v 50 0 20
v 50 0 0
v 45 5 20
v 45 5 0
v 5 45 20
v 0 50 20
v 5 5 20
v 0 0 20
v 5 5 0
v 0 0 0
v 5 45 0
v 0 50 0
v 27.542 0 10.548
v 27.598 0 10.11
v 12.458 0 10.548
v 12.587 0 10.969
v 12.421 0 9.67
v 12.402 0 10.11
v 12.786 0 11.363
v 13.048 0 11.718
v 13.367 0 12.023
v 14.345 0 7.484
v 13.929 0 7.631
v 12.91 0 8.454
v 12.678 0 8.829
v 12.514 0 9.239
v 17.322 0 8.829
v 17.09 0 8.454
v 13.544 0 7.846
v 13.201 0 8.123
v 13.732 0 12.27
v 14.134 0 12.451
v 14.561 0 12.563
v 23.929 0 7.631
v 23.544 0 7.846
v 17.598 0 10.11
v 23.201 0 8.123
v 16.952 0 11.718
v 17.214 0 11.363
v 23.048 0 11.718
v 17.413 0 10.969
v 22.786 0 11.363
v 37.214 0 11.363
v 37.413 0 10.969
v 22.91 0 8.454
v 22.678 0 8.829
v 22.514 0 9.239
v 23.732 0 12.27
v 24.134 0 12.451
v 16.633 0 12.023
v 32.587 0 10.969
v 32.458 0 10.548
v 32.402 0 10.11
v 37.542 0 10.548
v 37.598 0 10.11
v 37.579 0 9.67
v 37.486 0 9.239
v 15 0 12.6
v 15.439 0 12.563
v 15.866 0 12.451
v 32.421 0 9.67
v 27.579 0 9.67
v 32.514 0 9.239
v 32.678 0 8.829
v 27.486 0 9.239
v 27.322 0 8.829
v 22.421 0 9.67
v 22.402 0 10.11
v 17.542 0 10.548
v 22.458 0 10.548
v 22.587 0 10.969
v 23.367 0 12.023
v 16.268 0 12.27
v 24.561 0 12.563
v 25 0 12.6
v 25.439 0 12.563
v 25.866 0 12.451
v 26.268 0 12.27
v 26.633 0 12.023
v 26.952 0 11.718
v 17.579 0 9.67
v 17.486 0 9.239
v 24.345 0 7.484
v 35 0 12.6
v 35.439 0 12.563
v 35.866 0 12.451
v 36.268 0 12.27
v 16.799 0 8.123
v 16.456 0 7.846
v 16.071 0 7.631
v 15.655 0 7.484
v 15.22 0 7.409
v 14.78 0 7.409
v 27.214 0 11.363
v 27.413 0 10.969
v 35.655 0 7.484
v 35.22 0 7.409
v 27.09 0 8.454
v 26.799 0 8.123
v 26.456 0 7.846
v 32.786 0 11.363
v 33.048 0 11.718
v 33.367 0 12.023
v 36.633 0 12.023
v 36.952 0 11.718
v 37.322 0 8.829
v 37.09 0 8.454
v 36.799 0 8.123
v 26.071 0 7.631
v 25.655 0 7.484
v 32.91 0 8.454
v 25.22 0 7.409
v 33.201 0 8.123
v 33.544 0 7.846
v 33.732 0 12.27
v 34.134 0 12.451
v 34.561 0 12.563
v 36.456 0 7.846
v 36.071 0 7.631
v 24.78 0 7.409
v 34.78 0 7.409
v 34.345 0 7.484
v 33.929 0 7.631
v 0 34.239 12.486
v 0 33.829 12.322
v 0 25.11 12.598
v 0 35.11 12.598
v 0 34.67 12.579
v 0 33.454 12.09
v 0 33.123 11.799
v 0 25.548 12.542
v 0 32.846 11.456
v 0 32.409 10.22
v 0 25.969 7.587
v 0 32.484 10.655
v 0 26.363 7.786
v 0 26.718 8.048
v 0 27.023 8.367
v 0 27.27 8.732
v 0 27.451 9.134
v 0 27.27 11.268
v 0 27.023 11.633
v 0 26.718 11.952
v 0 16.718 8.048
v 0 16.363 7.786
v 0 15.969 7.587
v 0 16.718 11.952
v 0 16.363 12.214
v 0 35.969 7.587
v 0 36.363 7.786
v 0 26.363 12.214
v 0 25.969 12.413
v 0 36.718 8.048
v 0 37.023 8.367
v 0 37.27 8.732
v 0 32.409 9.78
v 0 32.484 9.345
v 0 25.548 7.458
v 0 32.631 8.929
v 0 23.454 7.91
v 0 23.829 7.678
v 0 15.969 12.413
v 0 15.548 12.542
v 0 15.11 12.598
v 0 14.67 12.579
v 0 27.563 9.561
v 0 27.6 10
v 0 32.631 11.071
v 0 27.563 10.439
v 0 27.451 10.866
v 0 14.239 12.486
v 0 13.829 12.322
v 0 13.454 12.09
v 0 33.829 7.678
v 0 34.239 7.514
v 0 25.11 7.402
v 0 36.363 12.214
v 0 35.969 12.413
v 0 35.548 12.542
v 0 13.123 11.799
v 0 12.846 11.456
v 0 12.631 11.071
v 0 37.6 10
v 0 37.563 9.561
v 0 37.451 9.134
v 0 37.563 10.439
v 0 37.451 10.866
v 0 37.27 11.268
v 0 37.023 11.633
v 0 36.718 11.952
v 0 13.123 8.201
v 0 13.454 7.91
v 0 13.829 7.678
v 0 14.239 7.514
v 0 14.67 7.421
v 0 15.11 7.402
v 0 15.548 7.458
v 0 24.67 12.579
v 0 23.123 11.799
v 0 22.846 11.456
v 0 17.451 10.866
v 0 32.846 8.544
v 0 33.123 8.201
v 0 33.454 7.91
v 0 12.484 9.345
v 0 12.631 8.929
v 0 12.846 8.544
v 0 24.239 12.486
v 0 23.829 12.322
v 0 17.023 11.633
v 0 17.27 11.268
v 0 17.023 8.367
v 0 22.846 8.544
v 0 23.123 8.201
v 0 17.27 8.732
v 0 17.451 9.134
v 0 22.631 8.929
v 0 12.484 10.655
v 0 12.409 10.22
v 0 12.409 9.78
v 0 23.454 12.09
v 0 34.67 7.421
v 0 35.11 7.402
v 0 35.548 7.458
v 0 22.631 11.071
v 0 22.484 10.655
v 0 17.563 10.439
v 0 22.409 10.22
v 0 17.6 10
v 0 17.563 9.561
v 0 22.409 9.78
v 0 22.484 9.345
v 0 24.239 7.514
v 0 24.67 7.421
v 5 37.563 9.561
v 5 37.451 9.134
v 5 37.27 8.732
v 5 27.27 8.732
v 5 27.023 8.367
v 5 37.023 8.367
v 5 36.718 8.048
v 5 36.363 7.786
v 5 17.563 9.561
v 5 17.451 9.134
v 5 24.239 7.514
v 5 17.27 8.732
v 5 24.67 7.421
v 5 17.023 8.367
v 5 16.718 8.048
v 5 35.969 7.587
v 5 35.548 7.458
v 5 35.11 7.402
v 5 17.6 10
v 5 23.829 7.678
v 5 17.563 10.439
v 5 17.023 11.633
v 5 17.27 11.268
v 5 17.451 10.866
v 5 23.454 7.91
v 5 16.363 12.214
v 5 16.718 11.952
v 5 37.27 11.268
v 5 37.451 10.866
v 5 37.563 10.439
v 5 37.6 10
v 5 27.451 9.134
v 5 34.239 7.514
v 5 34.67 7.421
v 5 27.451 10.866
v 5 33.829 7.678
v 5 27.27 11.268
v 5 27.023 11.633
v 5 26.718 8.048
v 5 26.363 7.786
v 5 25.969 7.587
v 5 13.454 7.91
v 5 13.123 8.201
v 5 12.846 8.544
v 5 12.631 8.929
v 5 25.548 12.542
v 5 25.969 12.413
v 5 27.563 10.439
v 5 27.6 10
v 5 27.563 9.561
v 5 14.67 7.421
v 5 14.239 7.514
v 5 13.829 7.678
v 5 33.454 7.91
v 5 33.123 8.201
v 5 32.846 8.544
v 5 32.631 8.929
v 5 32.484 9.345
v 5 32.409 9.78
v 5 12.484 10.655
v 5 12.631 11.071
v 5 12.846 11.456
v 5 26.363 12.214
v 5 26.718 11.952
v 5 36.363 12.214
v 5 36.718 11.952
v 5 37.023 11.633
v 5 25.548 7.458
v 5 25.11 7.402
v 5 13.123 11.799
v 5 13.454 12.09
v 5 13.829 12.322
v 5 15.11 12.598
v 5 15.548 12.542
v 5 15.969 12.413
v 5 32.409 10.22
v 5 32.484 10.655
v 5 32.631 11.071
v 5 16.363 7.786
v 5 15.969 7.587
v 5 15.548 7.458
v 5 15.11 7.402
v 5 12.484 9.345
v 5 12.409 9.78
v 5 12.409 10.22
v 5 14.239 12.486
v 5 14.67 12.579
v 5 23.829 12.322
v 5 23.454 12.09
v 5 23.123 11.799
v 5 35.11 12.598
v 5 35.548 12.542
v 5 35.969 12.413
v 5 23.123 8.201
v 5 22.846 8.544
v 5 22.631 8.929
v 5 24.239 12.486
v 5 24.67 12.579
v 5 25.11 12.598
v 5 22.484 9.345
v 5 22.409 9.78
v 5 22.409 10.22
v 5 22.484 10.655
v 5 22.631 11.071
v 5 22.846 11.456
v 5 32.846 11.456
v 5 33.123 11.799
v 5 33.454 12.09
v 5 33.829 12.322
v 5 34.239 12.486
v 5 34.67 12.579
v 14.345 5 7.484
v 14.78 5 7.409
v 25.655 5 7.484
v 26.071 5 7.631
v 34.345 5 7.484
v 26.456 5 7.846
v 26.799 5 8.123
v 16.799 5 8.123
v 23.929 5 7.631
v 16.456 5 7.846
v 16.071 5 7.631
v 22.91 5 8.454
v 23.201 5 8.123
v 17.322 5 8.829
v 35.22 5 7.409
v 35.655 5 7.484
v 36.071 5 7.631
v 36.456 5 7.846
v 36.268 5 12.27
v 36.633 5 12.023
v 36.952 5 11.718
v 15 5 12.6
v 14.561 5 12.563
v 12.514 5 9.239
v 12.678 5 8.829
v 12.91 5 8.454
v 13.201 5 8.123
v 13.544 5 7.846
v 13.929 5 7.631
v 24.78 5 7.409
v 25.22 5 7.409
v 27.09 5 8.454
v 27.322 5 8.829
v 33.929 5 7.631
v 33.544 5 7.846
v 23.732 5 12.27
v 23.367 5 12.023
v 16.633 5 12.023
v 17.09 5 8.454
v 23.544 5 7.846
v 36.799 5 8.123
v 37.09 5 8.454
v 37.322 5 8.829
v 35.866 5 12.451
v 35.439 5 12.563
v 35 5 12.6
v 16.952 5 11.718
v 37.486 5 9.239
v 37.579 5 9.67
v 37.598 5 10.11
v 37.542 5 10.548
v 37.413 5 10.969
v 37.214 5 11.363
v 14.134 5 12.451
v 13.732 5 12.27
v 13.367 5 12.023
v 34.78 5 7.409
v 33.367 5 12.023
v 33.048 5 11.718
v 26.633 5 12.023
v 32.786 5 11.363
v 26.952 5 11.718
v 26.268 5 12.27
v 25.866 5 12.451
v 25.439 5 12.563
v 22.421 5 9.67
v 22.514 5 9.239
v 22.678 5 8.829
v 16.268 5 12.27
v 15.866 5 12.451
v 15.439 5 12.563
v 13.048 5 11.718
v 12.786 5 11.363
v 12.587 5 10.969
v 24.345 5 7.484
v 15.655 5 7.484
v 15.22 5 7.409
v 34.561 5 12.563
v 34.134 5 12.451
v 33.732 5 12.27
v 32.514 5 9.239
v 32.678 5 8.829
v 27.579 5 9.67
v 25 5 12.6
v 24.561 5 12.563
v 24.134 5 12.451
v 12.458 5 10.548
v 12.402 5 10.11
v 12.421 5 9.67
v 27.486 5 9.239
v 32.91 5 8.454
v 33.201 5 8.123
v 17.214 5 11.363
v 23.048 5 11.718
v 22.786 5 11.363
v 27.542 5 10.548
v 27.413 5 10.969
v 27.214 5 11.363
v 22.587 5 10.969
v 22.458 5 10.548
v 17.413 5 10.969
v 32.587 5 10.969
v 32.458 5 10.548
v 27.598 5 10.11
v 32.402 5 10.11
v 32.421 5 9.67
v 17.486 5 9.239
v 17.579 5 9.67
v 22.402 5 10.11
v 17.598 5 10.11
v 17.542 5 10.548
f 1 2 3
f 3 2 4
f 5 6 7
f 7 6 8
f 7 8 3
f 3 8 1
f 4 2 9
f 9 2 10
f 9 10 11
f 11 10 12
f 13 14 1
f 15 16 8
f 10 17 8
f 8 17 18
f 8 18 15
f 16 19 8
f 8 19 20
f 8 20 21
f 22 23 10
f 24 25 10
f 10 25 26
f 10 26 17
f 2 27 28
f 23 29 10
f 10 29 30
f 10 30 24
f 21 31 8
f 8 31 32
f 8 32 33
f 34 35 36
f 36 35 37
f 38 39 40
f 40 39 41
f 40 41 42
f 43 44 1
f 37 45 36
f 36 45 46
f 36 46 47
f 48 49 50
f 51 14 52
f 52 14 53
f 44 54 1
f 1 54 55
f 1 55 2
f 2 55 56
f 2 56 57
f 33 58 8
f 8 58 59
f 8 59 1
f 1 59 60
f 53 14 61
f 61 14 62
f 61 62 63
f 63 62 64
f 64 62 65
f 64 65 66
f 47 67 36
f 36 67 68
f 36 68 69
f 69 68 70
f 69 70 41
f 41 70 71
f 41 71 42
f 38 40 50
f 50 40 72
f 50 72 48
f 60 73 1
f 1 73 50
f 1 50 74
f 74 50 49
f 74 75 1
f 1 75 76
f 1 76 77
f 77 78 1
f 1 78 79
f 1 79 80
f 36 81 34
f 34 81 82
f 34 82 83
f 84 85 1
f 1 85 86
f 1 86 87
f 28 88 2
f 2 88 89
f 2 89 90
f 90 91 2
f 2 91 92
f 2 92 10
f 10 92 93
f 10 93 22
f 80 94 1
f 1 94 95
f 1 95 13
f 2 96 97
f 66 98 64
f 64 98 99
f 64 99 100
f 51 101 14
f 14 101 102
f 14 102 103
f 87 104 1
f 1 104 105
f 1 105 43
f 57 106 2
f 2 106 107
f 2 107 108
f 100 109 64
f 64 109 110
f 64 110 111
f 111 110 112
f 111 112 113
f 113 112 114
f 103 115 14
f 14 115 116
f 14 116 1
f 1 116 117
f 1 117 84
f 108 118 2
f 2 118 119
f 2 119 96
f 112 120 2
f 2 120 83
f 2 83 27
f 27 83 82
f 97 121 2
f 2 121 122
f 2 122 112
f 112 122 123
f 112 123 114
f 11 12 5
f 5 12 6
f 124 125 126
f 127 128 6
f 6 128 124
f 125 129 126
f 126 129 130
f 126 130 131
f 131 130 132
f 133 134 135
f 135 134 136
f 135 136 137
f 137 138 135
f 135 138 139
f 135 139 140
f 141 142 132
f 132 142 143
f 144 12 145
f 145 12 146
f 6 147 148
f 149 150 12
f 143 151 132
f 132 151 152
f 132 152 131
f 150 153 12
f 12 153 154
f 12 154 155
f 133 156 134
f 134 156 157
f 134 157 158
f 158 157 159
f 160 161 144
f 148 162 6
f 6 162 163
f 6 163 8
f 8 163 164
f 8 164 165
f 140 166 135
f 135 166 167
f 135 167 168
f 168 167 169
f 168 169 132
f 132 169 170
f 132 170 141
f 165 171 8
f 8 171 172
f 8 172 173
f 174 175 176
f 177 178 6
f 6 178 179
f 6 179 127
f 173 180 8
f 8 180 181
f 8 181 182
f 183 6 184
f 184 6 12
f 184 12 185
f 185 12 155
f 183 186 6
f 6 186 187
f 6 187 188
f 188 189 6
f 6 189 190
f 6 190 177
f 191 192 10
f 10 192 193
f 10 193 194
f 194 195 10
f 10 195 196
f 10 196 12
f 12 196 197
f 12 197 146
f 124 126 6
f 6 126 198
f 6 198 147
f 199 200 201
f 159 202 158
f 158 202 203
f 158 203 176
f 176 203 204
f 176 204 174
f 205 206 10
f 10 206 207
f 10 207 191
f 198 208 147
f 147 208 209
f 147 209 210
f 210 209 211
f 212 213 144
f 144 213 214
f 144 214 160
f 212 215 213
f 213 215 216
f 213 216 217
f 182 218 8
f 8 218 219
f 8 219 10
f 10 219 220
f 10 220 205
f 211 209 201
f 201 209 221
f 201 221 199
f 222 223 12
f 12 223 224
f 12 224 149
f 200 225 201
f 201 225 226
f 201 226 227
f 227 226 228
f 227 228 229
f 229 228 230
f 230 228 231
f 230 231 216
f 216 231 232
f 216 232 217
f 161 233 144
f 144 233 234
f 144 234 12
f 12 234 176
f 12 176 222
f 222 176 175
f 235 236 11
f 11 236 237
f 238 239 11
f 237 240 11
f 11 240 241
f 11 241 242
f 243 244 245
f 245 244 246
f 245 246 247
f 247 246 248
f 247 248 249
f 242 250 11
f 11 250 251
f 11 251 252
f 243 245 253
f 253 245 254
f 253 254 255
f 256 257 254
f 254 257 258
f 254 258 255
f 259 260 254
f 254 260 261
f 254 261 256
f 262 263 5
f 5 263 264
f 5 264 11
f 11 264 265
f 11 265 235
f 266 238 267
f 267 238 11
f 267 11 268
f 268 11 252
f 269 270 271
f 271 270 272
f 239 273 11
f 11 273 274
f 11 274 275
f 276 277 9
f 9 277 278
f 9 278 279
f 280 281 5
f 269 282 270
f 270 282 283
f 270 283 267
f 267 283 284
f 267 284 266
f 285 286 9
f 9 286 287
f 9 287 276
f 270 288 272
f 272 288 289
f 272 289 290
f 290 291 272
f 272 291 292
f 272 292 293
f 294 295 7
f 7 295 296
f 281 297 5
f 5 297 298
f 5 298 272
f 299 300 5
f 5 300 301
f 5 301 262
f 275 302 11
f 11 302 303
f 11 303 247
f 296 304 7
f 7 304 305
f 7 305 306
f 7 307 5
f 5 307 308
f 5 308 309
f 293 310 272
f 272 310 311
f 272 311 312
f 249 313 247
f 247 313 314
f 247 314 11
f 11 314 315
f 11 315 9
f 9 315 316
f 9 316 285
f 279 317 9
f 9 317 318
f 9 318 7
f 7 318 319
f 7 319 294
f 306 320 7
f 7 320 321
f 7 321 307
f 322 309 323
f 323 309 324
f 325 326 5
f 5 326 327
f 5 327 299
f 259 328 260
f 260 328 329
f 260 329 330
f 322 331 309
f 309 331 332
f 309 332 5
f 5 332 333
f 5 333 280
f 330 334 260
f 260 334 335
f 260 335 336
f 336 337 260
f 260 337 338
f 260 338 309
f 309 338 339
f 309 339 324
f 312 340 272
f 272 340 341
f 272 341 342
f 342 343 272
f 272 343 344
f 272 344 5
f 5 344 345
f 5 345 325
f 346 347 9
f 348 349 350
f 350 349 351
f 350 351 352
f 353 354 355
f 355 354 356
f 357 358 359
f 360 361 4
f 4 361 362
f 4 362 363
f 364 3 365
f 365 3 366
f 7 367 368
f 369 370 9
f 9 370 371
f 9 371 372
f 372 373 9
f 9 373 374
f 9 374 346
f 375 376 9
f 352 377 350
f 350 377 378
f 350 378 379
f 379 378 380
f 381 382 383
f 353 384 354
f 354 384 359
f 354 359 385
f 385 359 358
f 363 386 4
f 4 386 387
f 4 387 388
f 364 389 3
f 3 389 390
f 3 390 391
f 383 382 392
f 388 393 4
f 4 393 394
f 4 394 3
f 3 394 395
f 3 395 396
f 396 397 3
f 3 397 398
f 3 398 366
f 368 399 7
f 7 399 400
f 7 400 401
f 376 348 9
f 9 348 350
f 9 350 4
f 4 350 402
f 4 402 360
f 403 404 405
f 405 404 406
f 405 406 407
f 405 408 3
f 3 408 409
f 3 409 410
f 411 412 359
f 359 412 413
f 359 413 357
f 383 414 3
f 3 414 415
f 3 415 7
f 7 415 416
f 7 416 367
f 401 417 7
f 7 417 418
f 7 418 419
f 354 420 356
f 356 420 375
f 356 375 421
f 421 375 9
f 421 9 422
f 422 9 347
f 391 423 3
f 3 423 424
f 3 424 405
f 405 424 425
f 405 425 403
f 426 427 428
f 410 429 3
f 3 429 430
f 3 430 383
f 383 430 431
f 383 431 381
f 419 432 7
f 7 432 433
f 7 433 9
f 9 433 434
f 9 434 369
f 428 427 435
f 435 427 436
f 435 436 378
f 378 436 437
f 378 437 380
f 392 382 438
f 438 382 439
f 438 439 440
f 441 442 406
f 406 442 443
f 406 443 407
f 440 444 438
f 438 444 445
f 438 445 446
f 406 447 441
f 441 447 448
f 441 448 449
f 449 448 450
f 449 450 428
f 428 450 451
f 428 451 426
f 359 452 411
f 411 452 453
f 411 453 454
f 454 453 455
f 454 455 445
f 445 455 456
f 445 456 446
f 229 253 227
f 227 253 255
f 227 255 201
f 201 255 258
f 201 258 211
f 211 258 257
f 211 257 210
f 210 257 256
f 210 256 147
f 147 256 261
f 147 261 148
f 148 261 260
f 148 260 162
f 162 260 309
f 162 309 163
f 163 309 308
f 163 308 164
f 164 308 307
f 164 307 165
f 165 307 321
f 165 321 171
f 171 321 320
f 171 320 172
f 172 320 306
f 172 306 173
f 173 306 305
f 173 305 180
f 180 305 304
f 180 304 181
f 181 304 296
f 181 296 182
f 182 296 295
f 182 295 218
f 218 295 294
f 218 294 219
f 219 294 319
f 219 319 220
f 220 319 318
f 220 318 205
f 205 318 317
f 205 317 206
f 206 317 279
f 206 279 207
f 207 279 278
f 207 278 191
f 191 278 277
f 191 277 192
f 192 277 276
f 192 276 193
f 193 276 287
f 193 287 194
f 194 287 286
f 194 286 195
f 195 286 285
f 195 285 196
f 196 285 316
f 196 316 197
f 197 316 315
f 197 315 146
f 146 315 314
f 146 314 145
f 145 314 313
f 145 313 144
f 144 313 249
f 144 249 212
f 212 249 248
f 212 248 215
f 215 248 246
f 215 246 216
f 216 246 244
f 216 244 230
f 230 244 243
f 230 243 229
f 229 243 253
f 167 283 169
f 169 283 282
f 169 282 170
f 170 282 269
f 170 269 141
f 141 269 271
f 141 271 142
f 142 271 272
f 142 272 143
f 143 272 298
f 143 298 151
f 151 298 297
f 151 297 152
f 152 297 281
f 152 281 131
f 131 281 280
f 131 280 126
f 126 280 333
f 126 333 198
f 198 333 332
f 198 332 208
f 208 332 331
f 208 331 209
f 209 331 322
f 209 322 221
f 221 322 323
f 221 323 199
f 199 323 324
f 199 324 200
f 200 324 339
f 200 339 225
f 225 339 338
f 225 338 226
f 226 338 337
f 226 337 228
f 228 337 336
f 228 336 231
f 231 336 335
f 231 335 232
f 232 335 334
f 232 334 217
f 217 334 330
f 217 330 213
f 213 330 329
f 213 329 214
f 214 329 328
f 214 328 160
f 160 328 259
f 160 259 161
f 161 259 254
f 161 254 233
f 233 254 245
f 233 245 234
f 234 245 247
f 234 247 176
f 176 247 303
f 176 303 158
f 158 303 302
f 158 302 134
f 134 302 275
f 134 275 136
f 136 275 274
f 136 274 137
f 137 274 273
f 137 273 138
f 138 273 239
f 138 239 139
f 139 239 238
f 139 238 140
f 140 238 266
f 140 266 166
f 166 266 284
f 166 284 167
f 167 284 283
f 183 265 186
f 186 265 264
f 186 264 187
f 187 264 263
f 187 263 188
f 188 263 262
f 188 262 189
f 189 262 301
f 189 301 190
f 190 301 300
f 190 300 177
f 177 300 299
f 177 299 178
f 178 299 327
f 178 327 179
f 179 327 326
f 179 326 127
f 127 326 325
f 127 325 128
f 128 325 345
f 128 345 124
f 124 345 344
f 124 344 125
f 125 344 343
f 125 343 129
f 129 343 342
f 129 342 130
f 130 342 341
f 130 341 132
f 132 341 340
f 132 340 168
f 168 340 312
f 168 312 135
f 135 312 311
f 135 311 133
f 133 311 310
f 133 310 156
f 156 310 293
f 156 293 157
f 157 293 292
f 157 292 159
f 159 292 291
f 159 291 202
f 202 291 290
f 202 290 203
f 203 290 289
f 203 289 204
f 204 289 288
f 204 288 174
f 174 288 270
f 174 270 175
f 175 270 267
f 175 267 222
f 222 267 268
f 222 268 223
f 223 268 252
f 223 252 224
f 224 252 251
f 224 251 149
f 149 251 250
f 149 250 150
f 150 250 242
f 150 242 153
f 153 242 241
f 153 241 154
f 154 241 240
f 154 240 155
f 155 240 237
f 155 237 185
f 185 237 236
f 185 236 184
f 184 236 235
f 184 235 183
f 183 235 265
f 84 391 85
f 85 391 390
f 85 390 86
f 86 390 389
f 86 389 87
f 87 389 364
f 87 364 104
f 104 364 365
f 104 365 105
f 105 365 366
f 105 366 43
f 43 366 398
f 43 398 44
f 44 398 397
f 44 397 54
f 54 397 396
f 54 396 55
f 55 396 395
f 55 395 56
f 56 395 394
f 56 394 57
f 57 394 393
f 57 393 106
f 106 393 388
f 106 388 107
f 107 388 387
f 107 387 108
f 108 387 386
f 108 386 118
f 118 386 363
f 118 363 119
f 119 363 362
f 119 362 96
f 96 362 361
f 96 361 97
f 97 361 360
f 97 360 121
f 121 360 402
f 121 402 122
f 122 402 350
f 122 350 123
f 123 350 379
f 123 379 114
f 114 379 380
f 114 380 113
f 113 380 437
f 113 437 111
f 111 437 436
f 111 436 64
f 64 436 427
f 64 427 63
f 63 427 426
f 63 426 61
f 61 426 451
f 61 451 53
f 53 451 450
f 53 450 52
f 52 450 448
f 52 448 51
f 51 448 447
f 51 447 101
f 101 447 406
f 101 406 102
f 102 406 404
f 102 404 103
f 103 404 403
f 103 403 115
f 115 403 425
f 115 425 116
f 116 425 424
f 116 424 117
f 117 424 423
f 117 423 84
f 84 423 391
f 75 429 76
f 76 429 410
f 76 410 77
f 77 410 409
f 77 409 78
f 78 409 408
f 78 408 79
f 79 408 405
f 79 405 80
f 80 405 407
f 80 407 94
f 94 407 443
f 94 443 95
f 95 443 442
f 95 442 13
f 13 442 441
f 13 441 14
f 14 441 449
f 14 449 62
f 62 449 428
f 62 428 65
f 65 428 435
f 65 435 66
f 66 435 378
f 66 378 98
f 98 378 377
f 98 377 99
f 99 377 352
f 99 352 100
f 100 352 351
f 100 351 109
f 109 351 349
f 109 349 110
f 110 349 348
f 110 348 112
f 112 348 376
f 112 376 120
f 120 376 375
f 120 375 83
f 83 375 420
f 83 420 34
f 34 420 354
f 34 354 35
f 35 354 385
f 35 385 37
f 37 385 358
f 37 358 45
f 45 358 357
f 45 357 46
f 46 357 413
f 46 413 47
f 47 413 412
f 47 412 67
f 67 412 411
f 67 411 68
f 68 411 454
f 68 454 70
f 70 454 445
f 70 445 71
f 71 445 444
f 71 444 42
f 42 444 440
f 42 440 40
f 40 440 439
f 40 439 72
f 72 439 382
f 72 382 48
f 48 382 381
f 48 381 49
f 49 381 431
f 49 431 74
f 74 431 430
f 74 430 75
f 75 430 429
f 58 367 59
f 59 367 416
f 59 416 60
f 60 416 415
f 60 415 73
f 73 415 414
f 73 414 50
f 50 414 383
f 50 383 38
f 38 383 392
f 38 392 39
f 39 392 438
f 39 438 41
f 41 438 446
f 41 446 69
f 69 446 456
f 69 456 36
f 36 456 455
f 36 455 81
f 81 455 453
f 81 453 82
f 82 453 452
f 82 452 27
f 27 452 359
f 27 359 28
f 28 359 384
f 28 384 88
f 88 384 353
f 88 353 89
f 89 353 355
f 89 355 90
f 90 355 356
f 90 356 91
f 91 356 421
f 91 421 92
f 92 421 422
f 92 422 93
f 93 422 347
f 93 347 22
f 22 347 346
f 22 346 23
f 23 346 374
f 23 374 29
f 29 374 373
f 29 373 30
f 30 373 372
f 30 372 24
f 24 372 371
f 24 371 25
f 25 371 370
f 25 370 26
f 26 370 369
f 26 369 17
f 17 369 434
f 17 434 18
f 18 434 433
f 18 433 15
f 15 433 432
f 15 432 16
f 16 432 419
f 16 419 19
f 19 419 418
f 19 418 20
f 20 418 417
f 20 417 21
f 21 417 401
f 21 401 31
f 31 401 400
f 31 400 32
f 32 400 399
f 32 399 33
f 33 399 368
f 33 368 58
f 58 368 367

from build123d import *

# Parameters (mm, degrees)
BOSS_EXTRUDE1_DEPTH     = 20
CUT_EXTRUDE1_DEPTH      = 1
CUT_EXTRUDE1_DEPTH_BACK = 21
SKETCH4_R               = 2.6
CUT_EXTRUDE2_DEPTH      = 6
SKETCH5_R               = 2.6
CUT_EXTRUDE3_DEPTH      = 6


with BuildPart() as part:
    # Sketch1 → Boss-Extrude1 (new body)
    with BuildSketch(Plane.XY):
        Polygon((0, 0), (0, 50), (50, 0), align=None)
    extrude(amount=BOSS_EXTRUDE1_DEPTH)

    # Sketch2 → Cut-Extrude1 (cut, two sides)
    with BuildSketch(Plane.XY.offset(20)) as cut_extrude1_sk:
        Polygon((5, 182.279220614), (5, 45), (5, 5), (45, 5), (182.279220614, 5), (376.421356237, 199.142135624), (199.142135624, 376.421356237), align=None)
    extrude(amount=CUT_EXTRUDE1_DEPTH, mode=Mode.SUBTRACT)
    extrude(cut_extrude1_sk.sketch, amount=-CUT_EXTRUDE1_DEPTH_BACK, mode=Mode.SUBTRACT)

    # Sketch4 → Cut-Extrude2 (cut, through all)
    with BuildSketch(Plane(origin=(5, 0, 0), x_dir=(0, 0, -1), z_dir=(1, 0, 0))):
        with Locations((-10, 35)):
            Circle(SKETCH4_R)
        with Locations((-10, 25)):
            Circle(SKETCH4_R)
        with Locations((-10, 15)):
            Circle(SKETCH4_R)
    extrude(amount=-CUT_EXTRUDE2_DEPTH, mode=Mode.SUBTRACT)

    # Sketch5 → Cut-Extrude3 (cut, through all)
    with BuildSketch(Plane(origin=(0, 5, 0), x_dir=(1, 0, 0), z_dir=(0, 1, 0))):
        with Locations((35, -10)):
            Circle(SKETCH5_R)
        with Locations((25, -10)):
            Circle(SKETCH5_R)
        with Locations((15, -10)):
            Circle(SKETCH5_R)
    extrude(amount=-CUT_EXTRUDE3_DEPTH, mode=Mode.SUBTRACT)


solid = part.part
